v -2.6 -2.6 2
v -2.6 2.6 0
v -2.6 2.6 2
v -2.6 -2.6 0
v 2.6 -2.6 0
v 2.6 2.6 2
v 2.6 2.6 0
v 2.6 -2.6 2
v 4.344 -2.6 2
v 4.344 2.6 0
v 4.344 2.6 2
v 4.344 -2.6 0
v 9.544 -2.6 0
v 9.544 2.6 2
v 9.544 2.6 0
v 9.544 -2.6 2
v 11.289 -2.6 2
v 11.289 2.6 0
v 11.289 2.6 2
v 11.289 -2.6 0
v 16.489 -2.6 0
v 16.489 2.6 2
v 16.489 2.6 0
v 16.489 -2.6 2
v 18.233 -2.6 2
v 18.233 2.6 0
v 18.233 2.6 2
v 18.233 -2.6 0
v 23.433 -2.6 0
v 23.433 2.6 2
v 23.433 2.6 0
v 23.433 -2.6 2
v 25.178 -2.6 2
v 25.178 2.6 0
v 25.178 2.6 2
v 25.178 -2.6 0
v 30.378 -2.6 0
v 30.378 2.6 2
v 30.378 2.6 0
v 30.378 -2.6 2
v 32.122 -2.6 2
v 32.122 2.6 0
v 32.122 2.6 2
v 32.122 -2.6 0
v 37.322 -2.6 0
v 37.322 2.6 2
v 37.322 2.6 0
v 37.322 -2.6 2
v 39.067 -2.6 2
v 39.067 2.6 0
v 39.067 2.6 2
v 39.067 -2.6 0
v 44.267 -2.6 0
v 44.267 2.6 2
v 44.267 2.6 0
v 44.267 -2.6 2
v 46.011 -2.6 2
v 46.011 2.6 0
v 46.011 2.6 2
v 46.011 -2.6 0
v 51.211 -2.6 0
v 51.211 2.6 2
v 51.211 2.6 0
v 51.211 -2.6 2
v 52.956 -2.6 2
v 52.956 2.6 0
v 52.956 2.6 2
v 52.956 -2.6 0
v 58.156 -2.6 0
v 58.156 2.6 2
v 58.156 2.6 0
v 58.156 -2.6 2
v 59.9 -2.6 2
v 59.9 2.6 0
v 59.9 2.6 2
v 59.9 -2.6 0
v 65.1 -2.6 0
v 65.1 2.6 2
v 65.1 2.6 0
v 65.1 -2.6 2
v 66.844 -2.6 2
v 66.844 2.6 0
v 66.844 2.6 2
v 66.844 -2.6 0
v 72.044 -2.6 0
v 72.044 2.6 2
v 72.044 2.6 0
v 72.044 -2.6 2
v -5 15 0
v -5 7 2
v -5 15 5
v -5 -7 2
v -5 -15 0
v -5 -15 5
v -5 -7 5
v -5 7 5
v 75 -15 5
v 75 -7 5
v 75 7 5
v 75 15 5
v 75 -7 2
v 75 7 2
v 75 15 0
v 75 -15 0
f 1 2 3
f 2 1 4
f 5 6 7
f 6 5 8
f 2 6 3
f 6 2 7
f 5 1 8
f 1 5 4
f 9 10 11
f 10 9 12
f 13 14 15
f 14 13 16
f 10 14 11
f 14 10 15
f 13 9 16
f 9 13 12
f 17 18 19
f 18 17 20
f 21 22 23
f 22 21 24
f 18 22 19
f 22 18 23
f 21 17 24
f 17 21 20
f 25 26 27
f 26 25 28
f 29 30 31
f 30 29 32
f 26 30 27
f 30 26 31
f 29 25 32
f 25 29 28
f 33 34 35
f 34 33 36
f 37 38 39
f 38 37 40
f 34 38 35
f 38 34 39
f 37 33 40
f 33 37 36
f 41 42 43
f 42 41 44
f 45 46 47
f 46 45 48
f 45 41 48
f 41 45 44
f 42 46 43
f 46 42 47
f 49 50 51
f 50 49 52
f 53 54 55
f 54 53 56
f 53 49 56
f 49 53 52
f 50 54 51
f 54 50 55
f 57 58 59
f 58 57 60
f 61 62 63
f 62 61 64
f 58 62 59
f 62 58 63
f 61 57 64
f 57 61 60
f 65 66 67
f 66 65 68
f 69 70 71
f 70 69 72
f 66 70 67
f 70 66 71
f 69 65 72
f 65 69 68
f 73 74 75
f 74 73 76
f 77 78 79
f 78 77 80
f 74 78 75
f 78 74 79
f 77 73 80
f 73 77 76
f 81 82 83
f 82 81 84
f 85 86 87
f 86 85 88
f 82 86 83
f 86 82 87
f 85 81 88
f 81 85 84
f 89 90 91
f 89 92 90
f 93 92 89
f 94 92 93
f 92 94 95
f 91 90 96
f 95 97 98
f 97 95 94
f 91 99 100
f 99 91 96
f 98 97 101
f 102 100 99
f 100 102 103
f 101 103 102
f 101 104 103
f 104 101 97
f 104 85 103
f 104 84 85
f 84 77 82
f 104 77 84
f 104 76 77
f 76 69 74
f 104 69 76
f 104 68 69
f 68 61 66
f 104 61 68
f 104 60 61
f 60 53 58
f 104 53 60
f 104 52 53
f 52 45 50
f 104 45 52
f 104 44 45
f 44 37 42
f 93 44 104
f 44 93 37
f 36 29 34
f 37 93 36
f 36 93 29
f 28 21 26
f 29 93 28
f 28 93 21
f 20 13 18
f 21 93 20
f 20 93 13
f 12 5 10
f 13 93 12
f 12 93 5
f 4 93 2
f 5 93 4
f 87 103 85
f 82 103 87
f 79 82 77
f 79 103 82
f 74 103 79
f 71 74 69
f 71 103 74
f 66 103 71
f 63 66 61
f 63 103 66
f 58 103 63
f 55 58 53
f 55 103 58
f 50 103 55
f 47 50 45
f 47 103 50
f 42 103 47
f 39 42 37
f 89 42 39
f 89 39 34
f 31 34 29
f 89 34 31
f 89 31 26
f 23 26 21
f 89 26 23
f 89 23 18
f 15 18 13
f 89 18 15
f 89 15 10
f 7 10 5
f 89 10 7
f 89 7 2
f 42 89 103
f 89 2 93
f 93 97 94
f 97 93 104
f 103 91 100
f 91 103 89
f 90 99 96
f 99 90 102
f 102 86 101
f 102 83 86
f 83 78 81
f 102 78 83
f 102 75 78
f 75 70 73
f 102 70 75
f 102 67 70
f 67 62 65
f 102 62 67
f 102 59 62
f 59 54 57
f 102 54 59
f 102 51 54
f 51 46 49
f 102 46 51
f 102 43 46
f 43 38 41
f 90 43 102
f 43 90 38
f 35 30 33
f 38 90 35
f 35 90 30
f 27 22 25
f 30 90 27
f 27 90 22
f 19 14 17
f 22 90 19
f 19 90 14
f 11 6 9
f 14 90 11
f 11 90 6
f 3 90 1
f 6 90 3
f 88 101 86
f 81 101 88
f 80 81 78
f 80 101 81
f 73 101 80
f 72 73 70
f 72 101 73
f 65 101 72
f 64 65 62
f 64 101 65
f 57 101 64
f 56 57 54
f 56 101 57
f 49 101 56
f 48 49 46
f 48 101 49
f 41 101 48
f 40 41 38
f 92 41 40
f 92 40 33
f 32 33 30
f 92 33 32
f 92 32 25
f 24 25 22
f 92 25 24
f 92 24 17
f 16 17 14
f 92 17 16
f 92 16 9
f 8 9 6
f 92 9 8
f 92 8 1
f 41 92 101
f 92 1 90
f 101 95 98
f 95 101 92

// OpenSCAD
WIDTH = 14;
HEIGHT = 2;

F_WIDTH = 30;
F_HEIGHT = 5;
F_LENGTH = 80;

LEDS_PER_METER = 144;
LED_WIDTH = 5.2;
LED_LENGTH = 5.2;

X_OFFSET = -5;

module draw_led(X)
{
   color([0, 1, 1])
   translate([X, 0, HEIGHT / 2 - 1])
   cube([LED_LENGTH, LED_WIDTH, HEIGHT + 4], true);
}

difference()
{
   color([1, 0, 1])
   {
      translate([X_OFFSET, -F_WIDTH / 2 , 0])
      cube([F_LENGTH, F_WIDTH, F_HEIGHT]);
   }
   color([0, 0, 1])
   {
      translate([X_OFFSET - 1, -WIDTH / 2, HEIGHT])
      cube([F_LENGTH + 2, WIDTH, 10]);
   }
   
   spacing = 1000 / LEDS_PER_METER;
   for (x = [0 : 10])
   {
      draw_led(x * spacing);
   }
}
